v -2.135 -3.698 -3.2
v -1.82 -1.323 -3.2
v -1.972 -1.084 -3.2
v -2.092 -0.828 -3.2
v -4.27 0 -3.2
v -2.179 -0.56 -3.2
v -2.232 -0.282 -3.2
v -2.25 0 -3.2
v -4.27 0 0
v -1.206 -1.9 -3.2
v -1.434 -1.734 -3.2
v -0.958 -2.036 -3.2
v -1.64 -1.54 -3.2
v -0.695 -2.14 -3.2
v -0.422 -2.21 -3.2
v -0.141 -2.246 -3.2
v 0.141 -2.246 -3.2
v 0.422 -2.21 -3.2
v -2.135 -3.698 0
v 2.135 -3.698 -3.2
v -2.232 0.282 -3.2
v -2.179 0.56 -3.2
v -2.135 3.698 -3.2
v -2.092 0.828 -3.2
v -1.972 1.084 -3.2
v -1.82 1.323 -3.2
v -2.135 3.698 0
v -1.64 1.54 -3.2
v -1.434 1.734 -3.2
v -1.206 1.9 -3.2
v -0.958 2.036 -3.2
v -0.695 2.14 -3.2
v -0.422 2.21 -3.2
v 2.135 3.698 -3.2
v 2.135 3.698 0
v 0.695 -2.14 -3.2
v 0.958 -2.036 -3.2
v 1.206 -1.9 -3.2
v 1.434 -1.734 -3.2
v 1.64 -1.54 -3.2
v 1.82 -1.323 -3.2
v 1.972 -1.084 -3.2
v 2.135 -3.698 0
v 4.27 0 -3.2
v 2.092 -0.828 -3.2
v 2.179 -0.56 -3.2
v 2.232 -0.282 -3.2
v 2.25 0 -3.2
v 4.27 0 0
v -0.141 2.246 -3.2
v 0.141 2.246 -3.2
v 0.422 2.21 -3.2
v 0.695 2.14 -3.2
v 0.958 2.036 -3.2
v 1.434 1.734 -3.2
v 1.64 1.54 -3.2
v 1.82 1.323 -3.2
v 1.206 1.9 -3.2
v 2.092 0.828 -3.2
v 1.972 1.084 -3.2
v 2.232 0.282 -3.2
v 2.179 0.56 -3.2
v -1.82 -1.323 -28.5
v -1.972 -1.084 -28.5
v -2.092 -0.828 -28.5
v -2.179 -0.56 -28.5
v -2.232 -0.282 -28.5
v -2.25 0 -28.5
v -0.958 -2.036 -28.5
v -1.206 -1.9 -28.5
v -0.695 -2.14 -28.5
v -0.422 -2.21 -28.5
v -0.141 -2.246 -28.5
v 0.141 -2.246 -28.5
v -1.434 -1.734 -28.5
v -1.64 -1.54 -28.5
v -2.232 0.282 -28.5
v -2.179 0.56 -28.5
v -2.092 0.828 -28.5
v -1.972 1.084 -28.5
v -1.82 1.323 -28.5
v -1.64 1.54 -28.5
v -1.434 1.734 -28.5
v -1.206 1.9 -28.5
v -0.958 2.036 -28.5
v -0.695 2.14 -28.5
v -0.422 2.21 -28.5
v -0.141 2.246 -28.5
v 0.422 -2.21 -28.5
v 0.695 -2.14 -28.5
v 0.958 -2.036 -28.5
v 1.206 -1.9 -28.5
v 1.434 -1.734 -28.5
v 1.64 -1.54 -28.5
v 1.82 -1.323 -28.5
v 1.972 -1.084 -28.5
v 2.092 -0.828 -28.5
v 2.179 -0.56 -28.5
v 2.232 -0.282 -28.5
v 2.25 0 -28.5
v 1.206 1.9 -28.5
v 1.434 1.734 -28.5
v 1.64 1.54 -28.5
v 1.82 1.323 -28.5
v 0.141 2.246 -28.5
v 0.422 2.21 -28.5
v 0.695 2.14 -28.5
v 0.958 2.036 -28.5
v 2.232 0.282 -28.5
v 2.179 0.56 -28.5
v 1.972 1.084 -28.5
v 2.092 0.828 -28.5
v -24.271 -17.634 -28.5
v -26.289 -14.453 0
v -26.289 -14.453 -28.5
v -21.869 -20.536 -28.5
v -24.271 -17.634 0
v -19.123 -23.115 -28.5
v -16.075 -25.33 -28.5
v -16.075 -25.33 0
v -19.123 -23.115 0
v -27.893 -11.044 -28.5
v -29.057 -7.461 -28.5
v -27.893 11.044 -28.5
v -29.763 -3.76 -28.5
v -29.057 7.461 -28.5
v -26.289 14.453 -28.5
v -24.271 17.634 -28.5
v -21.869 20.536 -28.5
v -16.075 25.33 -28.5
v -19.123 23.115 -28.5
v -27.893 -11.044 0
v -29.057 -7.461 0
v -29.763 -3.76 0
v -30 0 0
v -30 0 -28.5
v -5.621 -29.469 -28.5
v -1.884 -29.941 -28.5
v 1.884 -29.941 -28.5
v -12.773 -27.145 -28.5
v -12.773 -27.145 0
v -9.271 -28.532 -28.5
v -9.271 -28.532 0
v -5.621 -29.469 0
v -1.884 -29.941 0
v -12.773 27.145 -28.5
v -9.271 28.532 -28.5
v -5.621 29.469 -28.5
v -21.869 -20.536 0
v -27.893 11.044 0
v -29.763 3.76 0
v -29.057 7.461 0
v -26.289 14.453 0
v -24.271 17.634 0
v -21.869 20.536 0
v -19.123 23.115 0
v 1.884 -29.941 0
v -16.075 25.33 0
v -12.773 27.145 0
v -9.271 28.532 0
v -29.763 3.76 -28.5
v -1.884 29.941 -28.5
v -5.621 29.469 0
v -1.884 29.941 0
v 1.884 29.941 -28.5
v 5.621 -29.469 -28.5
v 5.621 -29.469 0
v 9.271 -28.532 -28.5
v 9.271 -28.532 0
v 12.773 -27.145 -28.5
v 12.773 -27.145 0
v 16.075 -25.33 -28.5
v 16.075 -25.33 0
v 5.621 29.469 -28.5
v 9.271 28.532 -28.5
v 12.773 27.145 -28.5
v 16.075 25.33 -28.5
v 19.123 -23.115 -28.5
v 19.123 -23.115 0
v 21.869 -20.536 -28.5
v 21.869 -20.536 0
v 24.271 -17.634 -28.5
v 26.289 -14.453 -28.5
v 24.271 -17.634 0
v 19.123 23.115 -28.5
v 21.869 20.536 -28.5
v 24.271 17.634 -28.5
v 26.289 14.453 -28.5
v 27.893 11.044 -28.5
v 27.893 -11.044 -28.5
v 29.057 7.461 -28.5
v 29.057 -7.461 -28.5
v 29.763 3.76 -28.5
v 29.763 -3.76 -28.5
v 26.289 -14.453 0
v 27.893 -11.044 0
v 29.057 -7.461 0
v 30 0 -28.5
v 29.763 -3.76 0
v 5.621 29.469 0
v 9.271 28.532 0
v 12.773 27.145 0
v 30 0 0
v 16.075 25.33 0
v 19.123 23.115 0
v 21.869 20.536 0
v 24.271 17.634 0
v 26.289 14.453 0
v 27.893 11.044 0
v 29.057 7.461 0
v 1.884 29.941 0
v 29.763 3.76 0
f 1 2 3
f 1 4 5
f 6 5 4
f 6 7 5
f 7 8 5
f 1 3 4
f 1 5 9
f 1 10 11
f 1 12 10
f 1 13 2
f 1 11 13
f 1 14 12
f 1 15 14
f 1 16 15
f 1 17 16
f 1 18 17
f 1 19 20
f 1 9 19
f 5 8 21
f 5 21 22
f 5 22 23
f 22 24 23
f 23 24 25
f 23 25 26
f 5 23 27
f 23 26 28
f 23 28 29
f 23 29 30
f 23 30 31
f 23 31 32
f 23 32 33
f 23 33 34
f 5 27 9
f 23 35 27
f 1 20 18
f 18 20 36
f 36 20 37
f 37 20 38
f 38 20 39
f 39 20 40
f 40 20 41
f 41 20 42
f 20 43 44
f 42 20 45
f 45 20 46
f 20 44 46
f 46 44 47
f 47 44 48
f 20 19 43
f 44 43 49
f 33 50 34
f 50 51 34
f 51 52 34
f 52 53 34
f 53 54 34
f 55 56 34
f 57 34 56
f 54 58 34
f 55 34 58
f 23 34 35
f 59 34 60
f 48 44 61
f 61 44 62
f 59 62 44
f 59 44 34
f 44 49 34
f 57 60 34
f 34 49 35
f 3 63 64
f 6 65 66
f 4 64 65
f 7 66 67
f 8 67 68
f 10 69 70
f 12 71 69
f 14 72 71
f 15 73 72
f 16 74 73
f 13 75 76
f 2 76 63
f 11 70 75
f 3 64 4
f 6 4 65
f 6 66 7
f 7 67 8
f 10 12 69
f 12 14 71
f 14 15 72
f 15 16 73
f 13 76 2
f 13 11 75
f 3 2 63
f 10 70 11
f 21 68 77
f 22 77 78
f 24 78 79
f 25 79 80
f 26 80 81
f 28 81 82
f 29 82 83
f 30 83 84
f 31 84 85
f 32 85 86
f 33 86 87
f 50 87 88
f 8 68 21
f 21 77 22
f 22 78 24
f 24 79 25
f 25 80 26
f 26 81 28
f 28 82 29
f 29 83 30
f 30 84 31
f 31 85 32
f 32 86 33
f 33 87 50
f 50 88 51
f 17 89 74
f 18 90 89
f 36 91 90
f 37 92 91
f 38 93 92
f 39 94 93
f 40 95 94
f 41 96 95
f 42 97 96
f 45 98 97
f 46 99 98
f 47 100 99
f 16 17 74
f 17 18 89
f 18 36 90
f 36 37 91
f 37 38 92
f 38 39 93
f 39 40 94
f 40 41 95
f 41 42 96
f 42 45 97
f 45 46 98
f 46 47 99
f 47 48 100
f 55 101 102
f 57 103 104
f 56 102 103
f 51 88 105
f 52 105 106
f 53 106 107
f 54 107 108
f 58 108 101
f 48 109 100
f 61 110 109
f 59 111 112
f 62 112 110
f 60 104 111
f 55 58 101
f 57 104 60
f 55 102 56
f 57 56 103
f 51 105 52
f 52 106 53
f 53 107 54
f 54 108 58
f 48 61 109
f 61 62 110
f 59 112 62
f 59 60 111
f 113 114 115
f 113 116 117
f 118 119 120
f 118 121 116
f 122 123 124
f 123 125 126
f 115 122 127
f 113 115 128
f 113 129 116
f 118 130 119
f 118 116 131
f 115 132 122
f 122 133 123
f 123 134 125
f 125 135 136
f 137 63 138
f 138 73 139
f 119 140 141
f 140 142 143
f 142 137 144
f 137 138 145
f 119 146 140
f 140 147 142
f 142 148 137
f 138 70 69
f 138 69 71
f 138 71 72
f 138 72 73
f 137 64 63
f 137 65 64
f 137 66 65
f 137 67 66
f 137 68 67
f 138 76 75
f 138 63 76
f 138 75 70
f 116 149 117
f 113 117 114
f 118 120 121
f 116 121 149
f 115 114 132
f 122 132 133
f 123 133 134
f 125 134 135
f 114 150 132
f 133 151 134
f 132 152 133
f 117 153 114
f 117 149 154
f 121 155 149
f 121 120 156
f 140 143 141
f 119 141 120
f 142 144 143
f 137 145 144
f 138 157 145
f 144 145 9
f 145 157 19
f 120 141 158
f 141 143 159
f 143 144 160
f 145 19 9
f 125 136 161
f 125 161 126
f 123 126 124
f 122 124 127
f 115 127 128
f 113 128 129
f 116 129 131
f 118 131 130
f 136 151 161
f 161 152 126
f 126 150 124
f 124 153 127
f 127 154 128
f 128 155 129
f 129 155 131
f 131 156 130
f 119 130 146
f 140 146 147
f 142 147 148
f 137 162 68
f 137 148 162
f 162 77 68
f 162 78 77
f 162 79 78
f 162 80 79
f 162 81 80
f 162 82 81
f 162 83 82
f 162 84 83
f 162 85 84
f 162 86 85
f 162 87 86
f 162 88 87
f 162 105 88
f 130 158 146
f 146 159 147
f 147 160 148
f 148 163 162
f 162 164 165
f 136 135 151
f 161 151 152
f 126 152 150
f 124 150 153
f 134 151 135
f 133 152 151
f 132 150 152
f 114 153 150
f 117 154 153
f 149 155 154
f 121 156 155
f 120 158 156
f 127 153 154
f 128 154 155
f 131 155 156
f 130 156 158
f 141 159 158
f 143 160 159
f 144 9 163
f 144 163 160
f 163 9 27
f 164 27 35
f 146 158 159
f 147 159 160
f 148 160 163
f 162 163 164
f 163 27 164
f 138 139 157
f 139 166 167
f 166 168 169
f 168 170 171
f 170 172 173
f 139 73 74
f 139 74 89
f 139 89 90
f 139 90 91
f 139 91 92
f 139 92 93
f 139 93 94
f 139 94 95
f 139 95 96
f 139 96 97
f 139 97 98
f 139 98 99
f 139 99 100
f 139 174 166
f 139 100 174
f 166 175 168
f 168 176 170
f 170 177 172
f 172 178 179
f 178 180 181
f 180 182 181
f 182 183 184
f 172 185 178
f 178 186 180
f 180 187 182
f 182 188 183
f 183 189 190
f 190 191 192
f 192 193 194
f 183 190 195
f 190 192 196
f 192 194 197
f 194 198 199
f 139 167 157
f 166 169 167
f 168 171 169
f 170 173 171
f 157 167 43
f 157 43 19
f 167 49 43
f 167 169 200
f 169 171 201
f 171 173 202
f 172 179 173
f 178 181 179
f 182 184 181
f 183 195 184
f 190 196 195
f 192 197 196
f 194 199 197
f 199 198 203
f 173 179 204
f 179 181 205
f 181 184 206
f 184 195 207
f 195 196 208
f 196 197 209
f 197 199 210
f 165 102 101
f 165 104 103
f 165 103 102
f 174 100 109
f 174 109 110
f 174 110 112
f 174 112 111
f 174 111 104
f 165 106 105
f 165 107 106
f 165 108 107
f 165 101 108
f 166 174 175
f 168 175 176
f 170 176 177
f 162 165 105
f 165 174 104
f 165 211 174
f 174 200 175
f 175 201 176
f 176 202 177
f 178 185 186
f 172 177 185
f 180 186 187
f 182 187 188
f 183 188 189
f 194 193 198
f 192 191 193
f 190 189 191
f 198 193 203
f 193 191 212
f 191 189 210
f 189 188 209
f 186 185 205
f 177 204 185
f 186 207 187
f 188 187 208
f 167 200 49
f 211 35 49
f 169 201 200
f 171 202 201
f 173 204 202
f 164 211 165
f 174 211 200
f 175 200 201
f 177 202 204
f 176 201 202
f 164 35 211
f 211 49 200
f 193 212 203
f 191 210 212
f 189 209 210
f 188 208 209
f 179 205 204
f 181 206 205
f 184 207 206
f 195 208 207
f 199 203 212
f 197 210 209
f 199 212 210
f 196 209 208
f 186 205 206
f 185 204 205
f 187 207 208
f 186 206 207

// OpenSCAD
$fn = 50;

difference() {
	union() {
		translate(v = [0, 0, -28.5]) {
			cylinder(h = 28.5, r = 30.0);
		}
	}
	union() {
		translate(v = [0, 0, 0]) {
			rotate(a = [0, 0, 0]) {
				difference() {
					union() {
						translate(v = [0, 0, -3.2]) {
							linear_extrude(height = 3.2) {
								polygon(points = [[4.2698, 0.0], [2.1349000000000005, 3.697755269078796], [-2.134899999999999, 3.6977552690787965], [-4.2698, 5.228996902999369e-16], [-2.134900000000002, -3.6977552690787956], [2.1348999999999974, -3.697755269078798]]);
							}
						}
					}
					union();
				}
			}
		}
		#translate(v = [0, 0, -100.0]) {
			cylinder(h = 200, r = 2.25);
		}
	}
}
